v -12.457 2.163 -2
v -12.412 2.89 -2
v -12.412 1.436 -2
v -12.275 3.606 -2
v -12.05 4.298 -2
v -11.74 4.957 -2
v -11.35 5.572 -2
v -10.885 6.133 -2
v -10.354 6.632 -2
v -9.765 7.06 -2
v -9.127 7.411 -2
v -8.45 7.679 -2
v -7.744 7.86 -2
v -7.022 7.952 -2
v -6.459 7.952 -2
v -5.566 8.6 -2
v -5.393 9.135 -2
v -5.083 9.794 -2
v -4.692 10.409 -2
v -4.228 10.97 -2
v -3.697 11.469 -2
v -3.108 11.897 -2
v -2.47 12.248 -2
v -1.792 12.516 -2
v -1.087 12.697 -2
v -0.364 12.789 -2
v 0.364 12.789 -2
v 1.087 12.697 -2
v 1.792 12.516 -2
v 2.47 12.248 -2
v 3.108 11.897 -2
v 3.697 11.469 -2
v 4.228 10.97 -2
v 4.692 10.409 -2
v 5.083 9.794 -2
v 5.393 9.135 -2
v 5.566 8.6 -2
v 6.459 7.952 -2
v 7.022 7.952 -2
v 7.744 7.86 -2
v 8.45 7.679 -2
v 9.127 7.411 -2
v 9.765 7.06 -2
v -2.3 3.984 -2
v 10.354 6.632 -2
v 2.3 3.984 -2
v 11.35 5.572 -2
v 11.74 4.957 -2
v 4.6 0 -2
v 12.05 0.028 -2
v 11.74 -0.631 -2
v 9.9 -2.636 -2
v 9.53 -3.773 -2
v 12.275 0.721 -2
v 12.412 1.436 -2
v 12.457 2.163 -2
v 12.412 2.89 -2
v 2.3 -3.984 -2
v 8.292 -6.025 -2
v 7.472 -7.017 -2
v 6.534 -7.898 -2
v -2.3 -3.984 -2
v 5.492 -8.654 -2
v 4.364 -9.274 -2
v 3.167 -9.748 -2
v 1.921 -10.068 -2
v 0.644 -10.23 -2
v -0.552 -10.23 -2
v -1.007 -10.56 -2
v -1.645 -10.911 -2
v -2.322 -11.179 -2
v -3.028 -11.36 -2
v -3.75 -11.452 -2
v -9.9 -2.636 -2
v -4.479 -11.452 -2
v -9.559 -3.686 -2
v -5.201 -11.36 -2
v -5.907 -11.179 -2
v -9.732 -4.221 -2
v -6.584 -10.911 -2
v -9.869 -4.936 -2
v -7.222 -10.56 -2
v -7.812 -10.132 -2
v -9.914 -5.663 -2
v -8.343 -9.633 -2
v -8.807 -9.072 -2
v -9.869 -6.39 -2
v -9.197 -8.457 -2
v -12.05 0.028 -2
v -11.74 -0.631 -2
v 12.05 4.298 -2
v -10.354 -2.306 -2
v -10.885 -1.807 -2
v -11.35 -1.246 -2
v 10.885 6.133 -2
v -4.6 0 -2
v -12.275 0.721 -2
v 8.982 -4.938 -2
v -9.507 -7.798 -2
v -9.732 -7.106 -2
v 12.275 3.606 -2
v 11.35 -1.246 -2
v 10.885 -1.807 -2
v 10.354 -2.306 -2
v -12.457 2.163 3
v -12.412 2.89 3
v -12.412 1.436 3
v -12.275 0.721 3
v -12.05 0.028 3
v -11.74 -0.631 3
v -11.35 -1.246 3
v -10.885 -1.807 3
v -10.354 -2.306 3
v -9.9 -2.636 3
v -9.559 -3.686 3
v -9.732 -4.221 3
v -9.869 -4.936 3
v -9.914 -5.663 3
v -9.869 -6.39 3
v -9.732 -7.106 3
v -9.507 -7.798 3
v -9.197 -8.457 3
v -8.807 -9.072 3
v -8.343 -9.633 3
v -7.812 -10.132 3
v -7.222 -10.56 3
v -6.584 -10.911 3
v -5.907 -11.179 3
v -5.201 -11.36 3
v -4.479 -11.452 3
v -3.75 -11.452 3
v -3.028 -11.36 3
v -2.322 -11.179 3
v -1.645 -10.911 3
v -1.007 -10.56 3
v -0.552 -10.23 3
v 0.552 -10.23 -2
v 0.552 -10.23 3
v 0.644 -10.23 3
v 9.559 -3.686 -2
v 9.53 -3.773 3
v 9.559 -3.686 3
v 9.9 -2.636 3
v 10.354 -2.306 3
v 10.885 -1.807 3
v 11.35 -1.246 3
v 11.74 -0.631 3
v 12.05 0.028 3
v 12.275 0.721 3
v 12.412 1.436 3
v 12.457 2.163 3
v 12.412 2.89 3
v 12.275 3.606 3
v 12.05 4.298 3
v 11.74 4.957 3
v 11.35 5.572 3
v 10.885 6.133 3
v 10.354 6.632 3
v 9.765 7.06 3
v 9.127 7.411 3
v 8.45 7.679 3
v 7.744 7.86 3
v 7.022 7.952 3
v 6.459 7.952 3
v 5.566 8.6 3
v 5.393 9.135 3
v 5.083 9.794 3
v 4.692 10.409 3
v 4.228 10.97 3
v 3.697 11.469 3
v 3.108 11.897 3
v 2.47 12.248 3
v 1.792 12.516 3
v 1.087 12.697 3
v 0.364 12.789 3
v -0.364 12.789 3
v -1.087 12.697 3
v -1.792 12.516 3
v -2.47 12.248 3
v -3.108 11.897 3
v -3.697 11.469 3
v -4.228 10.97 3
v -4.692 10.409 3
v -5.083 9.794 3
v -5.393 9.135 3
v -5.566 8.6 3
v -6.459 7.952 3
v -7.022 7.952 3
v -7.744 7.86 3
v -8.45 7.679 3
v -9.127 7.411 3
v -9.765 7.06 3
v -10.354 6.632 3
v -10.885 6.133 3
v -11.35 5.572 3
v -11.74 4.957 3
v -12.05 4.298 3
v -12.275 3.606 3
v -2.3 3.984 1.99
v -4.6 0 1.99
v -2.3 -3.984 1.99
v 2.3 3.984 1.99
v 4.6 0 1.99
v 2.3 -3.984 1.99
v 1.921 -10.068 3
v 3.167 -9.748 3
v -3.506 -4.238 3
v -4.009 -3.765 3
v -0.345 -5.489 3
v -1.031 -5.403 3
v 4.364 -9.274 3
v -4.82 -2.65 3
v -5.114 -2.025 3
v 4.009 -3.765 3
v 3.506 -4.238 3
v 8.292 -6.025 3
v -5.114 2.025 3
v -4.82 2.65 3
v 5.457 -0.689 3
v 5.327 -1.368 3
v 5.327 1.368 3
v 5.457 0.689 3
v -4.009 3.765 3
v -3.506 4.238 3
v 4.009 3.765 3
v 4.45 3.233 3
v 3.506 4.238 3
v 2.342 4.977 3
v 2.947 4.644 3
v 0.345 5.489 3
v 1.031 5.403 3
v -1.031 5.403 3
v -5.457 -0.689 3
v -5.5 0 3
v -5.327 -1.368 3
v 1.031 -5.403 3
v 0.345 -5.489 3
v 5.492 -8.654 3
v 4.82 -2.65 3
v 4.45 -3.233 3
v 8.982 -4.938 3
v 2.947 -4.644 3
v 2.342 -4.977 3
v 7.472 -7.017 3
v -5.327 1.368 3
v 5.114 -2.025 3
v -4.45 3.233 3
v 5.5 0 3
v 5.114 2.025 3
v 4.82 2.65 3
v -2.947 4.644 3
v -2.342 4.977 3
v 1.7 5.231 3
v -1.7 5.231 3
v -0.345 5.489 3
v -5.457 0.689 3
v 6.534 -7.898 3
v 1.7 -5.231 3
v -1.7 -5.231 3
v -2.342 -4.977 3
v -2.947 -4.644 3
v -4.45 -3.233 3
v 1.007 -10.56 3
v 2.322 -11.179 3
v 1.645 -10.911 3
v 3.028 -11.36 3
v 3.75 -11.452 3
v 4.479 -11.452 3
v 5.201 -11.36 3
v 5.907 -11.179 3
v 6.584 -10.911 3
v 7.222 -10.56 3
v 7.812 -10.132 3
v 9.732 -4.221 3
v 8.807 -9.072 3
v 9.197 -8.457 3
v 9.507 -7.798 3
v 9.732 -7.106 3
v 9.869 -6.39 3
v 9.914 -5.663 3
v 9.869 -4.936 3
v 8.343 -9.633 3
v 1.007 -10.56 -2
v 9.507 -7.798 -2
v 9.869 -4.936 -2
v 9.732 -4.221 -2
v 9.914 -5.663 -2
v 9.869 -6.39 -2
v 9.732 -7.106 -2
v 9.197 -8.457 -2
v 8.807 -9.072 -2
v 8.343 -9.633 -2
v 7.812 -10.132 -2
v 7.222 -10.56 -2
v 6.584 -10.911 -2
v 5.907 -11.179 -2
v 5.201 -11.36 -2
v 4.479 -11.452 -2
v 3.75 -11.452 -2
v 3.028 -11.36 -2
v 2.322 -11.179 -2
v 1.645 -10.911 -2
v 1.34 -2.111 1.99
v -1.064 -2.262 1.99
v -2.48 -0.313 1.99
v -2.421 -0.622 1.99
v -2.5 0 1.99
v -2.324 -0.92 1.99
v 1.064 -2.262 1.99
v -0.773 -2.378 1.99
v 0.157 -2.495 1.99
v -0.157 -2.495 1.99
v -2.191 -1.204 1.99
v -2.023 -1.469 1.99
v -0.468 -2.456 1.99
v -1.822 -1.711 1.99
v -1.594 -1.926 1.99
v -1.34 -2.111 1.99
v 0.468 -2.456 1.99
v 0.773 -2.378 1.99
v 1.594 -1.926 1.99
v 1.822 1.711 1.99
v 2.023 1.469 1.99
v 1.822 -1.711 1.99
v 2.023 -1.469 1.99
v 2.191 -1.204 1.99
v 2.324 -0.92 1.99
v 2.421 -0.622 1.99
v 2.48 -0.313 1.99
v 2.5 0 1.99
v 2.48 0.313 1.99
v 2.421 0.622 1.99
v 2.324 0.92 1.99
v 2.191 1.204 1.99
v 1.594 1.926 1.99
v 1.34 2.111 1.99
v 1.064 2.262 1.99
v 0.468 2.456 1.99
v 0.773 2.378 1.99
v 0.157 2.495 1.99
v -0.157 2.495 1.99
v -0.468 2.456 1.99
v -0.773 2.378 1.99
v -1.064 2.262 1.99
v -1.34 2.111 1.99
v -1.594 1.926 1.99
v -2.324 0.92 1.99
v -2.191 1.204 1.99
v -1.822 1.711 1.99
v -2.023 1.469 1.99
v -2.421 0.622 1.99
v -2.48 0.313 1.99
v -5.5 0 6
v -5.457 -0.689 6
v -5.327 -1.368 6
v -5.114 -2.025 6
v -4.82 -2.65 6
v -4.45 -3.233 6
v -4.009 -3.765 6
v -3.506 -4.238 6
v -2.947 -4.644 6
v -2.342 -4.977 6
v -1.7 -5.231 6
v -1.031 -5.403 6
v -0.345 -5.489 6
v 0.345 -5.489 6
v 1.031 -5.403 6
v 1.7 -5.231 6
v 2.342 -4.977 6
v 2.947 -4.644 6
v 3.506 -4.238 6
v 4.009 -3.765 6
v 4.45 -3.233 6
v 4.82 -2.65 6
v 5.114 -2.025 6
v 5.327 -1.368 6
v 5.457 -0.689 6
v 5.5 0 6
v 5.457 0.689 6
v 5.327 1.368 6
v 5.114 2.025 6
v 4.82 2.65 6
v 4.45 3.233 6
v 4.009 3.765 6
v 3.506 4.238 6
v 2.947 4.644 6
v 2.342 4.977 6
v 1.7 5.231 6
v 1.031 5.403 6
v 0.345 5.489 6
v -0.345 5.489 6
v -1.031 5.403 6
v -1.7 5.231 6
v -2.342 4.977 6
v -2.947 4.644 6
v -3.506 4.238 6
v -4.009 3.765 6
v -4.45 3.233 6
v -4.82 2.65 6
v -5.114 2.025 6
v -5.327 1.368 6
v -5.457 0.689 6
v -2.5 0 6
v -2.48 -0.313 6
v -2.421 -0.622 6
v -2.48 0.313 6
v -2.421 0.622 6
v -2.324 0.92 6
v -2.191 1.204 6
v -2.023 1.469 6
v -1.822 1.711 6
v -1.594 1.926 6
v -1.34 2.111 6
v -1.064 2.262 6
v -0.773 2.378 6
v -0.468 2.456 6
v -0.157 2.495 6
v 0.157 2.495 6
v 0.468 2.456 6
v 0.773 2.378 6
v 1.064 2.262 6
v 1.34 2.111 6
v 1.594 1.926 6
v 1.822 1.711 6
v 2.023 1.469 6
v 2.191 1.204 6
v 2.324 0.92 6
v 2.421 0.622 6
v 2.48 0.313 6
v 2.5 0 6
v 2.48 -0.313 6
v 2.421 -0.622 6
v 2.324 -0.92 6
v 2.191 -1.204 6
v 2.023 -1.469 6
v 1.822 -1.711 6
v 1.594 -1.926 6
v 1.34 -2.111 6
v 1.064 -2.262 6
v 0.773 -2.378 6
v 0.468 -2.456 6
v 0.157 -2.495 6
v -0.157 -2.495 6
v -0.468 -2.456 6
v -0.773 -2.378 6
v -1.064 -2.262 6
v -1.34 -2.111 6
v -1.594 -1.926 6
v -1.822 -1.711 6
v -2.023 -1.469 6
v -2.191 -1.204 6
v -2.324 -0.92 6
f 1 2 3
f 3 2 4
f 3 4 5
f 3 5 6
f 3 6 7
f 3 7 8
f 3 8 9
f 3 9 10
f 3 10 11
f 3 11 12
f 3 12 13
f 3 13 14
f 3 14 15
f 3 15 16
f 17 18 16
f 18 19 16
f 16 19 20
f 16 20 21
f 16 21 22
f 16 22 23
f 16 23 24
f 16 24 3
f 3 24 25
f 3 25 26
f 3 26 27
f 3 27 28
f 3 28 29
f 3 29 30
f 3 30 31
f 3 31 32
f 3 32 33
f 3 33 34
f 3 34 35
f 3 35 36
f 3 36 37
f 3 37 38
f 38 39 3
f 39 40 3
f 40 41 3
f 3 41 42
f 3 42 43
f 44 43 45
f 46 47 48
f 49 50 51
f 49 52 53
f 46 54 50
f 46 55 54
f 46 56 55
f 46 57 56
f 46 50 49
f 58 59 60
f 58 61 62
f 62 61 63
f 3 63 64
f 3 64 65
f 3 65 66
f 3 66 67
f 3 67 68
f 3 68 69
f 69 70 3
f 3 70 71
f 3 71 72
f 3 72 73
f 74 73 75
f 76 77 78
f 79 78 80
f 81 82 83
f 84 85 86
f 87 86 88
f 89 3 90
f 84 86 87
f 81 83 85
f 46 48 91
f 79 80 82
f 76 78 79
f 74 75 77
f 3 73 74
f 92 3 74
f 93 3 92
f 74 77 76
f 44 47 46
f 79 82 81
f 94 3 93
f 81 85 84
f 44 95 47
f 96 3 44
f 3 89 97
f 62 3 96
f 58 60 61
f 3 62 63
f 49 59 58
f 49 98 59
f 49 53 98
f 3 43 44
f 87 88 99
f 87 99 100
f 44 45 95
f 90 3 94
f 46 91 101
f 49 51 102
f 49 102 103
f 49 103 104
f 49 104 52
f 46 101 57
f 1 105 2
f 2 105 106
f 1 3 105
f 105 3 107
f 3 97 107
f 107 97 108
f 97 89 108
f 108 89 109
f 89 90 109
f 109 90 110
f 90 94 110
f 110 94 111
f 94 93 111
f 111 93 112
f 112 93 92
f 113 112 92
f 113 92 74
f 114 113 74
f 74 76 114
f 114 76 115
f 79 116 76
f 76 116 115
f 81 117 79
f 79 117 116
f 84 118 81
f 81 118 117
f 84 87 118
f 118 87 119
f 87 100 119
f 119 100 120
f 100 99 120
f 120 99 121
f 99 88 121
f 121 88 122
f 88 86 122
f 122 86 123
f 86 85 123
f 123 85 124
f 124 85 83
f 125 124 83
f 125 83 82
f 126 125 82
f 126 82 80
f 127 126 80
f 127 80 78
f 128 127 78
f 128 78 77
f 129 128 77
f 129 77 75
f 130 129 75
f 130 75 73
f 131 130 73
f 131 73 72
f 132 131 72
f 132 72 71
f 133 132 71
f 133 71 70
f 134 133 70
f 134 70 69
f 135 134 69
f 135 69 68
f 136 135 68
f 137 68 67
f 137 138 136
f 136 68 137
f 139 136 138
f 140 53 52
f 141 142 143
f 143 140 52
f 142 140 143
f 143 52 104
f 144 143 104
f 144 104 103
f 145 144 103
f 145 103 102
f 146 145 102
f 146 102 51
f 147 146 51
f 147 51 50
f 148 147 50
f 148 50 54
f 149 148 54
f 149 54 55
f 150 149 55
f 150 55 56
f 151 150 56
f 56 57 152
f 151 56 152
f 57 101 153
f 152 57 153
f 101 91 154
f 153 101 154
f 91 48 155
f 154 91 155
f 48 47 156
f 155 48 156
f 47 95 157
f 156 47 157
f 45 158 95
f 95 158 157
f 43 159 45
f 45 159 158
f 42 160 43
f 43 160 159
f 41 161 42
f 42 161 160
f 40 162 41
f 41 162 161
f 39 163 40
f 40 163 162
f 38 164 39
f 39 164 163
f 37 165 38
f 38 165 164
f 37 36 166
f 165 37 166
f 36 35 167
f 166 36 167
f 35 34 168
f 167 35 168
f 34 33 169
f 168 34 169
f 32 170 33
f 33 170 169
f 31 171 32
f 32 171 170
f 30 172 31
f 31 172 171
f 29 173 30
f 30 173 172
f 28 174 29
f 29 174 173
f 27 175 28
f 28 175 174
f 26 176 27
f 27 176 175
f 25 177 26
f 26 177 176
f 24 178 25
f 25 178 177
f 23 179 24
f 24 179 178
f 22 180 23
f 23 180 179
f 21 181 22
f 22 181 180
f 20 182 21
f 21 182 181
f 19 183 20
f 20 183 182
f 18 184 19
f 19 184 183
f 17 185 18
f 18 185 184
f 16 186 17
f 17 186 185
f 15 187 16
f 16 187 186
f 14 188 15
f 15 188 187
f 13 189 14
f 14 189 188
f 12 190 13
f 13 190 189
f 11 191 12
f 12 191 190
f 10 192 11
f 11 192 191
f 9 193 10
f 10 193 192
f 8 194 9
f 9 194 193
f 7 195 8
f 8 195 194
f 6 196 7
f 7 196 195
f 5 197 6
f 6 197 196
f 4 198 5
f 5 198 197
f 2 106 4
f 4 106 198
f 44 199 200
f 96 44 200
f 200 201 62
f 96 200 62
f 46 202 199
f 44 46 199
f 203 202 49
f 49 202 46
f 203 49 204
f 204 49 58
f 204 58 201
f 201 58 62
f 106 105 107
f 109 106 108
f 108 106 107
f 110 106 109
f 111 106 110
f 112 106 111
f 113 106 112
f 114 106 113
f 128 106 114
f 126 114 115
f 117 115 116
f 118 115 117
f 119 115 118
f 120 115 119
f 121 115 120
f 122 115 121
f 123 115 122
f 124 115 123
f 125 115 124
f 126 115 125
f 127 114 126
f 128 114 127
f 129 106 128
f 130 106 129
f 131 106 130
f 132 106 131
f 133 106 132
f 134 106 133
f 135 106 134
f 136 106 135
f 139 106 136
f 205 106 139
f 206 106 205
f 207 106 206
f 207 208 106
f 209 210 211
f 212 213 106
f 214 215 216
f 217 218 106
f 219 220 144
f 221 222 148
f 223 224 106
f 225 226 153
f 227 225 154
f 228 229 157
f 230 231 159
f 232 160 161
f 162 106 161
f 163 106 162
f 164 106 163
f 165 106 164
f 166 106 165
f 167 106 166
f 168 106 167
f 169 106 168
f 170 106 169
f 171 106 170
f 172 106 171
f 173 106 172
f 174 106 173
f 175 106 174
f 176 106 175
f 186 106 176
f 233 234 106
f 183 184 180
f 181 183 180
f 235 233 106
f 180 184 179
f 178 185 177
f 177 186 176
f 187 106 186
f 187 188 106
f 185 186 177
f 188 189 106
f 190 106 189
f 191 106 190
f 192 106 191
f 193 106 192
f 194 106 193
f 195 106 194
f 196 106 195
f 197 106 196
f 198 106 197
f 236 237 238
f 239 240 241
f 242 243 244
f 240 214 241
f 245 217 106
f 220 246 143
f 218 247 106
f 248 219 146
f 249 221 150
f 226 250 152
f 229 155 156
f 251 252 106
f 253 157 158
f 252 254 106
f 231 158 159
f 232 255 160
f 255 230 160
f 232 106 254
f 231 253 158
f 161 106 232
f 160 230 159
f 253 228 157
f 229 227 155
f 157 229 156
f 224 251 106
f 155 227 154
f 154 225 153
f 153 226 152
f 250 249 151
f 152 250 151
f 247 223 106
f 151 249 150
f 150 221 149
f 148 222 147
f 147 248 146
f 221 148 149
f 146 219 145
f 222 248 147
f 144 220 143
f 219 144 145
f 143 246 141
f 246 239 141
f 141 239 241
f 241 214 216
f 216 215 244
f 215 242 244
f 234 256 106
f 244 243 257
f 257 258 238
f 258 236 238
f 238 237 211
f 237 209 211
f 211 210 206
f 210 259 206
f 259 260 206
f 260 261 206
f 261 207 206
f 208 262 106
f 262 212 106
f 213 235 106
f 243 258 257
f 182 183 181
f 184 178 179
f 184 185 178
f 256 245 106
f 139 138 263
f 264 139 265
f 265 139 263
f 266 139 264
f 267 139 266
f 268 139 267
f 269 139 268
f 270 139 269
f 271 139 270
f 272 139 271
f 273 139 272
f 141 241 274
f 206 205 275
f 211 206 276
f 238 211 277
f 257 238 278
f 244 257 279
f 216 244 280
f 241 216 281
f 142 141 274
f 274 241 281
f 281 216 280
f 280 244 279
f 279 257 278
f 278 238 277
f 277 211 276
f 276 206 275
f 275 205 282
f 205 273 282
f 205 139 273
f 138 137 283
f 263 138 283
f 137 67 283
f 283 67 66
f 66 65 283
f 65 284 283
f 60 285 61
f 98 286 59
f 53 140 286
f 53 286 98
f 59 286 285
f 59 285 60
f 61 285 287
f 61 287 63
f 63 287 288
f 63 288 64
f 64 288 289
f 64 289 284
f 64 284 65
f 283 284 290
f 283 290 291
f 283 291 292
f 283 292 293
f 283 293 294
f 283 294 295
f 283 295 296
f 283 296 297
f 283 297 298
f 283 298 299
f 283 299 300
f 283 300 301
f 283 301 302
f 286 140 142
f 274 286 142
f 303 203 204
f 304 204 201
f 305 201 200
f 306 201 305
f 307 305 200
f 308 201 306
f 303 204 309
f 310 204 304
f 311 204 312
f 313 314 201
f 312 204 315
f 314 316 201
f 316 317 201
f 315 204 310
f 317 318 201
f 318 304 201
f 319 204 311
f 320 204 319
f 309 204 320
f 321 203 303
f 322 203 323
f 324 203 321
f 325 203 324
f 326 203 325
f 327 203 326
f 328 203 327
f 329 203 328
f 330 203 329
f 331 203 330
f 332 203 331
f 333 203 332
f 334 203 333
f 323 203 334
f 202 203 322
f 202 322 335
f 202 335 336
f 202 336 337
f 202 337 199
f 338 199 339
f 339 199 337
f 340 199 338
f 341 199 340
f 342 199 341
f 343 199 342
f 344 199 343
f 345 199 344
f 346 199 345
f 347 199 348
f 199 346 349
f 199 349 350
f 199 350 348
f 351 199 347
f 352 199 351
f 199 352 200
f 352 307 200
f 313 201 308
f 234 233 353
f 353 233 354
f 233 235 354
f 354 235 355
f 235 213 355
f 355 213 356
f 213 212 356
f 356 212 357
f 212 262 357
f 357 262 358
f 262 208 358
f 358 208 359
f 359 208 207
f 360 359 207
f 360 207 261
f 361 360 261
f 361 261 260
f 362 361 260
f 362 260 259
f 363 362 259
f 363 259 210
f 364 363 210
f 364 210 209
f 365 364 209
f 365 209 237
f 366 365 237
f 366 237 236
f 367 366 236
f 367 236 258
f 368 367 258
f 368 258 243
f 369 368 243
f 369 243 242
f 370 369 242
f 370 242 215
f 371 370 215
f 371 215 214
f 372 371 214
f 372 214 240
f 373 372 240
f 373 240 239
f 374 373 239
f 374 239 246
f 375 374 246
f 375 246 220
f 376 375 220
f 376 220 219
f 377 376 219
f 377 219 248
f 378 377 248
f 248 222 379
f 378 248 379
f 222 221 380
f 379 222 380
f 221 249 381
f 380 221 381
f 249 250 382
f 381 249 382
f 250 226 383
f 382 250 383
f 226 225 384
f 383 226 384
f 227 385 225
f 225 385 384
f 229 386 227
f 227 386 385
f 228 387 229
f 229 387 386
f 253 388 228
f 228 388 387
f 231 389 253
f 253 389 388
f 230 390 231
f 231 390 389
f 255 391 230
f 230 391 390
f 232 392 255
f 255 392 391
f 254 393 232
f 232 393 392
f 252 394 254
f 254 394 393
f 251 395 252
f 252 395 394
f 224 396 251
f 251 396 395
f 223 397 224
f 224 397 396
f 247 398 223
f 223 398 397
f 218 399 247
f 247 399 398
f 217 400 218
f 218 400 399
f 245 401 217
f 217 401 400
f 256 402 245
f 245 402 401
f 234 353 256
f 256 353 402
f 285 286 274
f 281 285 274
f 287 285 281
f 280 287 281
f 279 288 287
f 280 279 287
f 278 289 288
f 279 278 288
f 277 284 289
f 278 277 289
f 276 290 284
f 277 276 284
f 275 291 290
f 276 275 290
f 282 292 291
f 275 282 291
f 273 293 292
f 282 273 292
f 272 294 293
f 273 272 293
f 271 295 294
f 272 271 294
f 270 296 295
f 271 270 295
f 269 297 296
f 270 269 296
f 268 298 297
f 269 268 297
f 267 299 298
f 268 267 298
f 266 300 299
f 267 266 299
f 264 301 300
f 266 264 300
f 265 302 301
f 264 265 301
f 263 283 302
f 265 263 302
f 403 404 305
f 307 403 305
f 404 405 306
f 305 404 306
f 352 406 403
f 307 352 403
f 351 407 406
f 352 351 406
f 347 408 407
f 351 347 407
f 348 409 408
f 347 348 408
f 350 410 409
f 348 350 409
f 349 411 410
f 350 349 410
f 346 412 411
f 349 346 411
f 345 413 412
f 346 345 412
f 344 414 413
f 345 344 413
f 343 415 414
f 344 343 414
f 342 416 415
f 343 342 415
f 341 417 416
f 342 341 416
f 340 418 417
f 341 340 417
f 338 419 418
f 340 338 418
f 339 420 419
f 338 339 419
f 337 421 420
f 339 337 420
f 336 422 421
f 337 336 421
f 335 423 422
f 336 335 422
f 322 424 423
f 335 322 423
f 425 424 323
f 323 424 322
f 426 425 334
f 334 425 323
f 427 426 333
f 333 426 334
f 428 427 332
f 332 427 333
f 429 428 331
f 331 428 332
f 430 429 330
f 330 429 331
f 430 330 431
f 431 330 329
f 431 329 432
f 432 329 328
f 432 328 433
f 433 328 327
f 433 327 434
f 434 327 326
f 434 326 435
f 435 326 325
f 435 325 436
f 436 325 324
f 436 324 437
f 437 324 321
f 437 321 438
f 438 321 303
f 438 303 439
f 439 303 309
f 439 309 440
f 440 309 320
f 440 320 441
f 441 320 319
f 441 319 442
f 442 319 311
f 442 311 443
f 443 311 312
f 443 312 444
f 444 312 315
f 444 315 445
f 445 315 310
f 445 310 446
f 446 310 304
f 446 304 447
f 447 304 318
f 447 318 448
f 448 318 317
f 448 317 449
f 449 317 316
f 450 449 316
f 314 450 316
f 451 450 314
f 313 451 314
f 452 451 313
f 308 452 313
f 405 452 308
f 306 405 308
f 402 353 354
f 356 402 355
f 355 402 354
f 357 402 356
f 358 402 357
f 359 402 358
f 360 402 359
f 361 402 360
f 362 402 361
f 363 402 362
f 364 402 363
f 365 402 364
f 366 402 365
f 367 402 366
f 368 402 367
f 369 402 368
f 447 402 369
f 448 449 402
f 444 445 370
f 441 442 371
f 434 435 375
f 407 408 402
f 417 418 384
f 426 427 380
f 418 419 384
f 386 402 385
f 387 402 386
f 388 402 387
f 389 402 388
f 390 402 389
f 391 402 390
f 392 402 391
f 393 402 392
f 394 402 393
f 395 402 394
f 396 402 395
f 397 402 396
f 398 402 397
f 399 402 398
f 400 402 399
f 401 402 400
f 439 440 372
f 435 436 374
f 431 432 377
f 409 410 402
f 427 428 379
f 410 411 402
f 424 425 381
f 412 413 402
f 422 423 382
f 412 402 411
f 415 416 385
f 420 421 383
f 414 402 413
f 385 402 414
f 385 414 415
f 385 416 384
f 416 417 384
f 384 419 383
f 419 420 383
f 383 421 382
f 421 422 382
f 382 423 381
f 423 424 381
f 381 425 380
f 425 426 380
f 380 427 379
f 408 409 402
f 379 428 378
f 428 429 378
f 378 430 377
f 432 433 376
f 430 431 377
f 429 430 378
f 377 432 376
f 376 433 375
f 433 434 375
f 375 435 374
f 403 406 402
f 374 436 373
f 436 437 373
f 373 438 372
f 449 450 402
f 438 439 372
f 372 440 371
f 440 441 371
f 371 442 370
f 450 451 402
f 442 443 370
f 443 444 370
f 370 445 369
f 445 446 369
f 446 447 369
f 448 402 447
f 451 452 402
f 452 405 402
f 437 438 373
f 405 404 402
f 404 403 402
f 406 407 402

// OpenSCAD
// file: nuts_and_bolts.scad
// copied from https://github.com/openscad/MCAD/blob/master/nuts_and_bolts.scad
//
// Copyright 2010 D1plo1d

// This library is dual licensed under the GPL 3.0 and the GNU Lesser General Public License as per http://creativecommons.org/licenses/LGPL/2.1/ .

//testNutsAndBolts();

module SKIPtestNutsAndBolts()
{
	$fn = 360;
	translate([0,15])nutHole(3, proj=2);
	boltHole(3, length= 30, proj=2);
}

MM = "mm";
INCH = "inch"; //Not yet supported

//Based on: http://www.roymech.co.uk/Useful_Tables/Screws/Hex_Screws.htm
METRIC_NUT_AC_WIDTHS =
[
	-1, //0 index is not used but reduces computation
	-1,
	-1,
	6.40,//m3
	8.10,//m4
	9.20,//m5
	11.50,//m6
	-1,
	15.00,//m8
	-1,
	19.60,//m10
	-1,
	22.10,//m12
	-1,
	-1,
	-1,
	27.70,//m16
	-1,
	-1,
	-1,
	34.60,//m20
	-1,
	-1,
	-1,
	41.60,//m24
	-1,
	-1,
	-1,
	-1,
	-1,
	53.1,//m30
	-1,
	-1,
	-1,
	-1,
	-1,
	63.5//m36
];
METRIC_NUT_THICKNESS =
[
	-1, //0 index is not used but reduces computation
	-1,
	-1,
	2.40,//m3
	3.20,//m4
	4.00,//m5
	5.00,//m6
	-1,
	6.50,//m8
	-1,
	8.00,//m10
	-1,
	10.00,//m12
	-1,
	-1,
	-1,
	13.00,//m16
	-1,
	-1,
	-1,
	16.00//m20
	-1,
	-1,
	-1,
	19.00,//m24
	-1,
	-1,
	-1,
	-1,
	-1,
	24.00,//m30
	-1,
	-1,
	-1,
	-1,
	-1,
	29.00//m36
];

COURSE_METRIC_BOLT_MAJOR_THREAD_DIAMETERS =
[//based on max values
	-1, //0 index is not used but reduces computation
	-1,
	-1,
	2.98,//m3
	3.978,//m4
	4.976,//m5
	5.974,//m6
	-1,
	7.972,//m8
	-1,
	9.968,//m10
	-1,
	11.966,//m12
	-1,
	-1,
	-1,
	15.962,//m16
	-1,
	-1,
	-1,
	19.958,//m20
	-1,
	-1,
	-1,
	23.952,//m24
	-1,
	-1,
	-1,
	-1,
	-1,
	29.947,//m30
	-1,
	-1,
	-1,
	-1,
	-1,
	35.940//m36
];

module nutHole(size, units=MM, tolerance = +0.0001, proj = -1)
{
	//takes a metric screw/nut size and looksup nut dimensions
	radius = METRIC_NUT_AC_WIDTHS[size]/2+tolerance;
	height = METRIC_NUT_THICKNESS[size]+tolerance;
	if (proj == -1)
	{
		cylinder(r= radius, h=height, $fn = 6, center=[0,0]);
	}
	if (proj == 1)
	{
		circle(r= radius, $fn = 6);
	}
	if (proj == 2)
	{
		translate([-radius/2, 0])
			square([radius*2, height]);
	}
}

module boltHole(size, units=MM, length, tolerance = +0.0001, proj = -1)
{
	radius = COURSE_METRIC_BOLT_MAJOR_THREAD_DIAMETERS[size]/2+tolerance;
//TODO: proper screw cap values
	capHeight = METRIC_NUT_THICKNESS[size]+tolerance; //METRIC_BOLT_CAP_HEIGHTS[size]+tolerance;
	capRadius = METRIC_NUT_AC_WIDTHS[size]/2+tolerance; //METRIC_BOLT_CAP_RADIUS[size]+tolerance;

	if (proj == -1)
	{
	translate([0, 0, -capHeight])
		cylinder(r= capRadius, h=capHeight);
	cylinder(r = radius, h = length);
	}
	if (proj == 1)
	{
		circle(r = radius);
	}
	if (proj == 2)
	{
		translate([-capRadius/2, -capHeight])
			square([capRadius*2, capHeight]);
		square([radius*2, length]);
	}
}// Copyright 2010 D1plo1d

// This library is dual licensed under the GPL 3.0 and the GNU Lesser General Public License as per http://creativecommons.org/licenses/LGPL/2.1/ .

//testNutsAndBolts();

module SKIPtestNutsAndBolts()
{
	$fn = 360;
	translate([0,15])nutHole(3, proj=2);
	boltHole(3, length= 30, proj=2);
}

MM = "mm";
INCH = "inch"; //Not yet supported

//Based on: http://www.roymech.co.uk/Useful_Tables/Screws/Hex_Screws.htm
METRIC_NUT_AC_WIDTHS =
[
	-1, //0 index is not used but reduces computation
	-1,
	-1,
	6.40,//m3
	8.10,//m4
	9.20,//m5
	11.50,//m6
	-1,
	15.00,//m8
	-1,
	19.60,//m10
	-1,
	22.10,//m12
	-1,
	-1,
	-1,
	27.70,//m16
	-1,
	-1,
	-1,
	34.60,//m20
	-1,
	-1,
	-1,
	41.60,//m24
	-1,
	-1,
	-1,
	-1,
	-1,
	53.1,//m30
	-1,
	-1,
	-1,
	-1,
	-1,
	63.5//m36
];
METRIC_NUT_THICKNESS =
[
	-1, //0 index is not used but reduces computation
	-1,
	-1,
	2.40,//m3
	3.20,//m4
	4.00,//m5
	5.00,//m6
	-1,
	6.50,//m8
	-1,
	8.00,//m10
	-1,
	10.00,//m12
	-1,
	-1,
	-1,
	13.00,//m16
	-1,
	-1,
	-1,
	16.00//m20
	-1,
	-1,
	-1,
	19.00,//m24
	-1,
	-1,
	-1,
	-1,
	-1,
	24.00,//m30
	-1,
	-1,
	-1,
	-1,
	-1,
	29.00//m36
];

COURSE_METRIC_BOLT_MAJOR_THREAD_DIAMETERS =
[//based on max values
	-1, //0 index is not used but reduces computation
	-1,
	-1,
	2.98,//m3
	3.978,//m4
	4.976,//m5
	5.974,//m6
	-1,
	7.972,//m8
	-1,
	9.968,//m10
	-1,
	11.966,//m12
	-1,
	-1,
	-1,
	15.962,//m16
	-1,
	-1,
	-1,
	19.958,//m20
	-1,
	-1,
	-1,
	23.952,//m24
	-1,
	-1,
	-1,
	-1,
	-1,
	29.947,//m30
	-1,
	-1,
	-1,
	-1,
	-1,
	35.940//m36
];

module nutHole(size, units=MM, tolerance = +0.0001, proj = -1)
{
	//takes a metric screw/nut size and looksup nut dimensions
	radius = METRIC_NUT_AC_WIDTHS[size]/2+tolerance;
	height = METRIC_NUT_THICKNESS[size]+tolerance;
	if (proj == -1)
	{
		cylinder(r= radius, h=height, $fn = 6, center=[0,0]);
	}
	if (proj == 1)
	{
		circle(r= radius, $fn = 6);
	}
	if (proj == 2)
	{
		translate([-radius/2, 0])
			square([radius*2, height]);
	}
}

module boltHole(size, units=MM, length, tolerance = +0.0001, proj = -1)
{
	radius = COURSE_METRIC_BOLT_MAJOR_THREAD_DIAMETERS[size]/2+tolerance;
//TODO: proper screw cap values
	capHeight = METRIC_NUT_THICKNESS[size]+tolerance; //METRIC_BOLT_CAP_HEIGHTS[size]+tolerance;
	capRadius = METRIC_NUT_AC_WIDTHS[size]/2+tolerance; //METRIC_BOLT_CAP_RADIUS[size]+tolerance;

	if (proj == -1)
	{
	translate([0, 0, -capHeight])
		cylinder(r= capRadius, h=capHeight);
	cylinder(r = radius, h = length);
	}
	if (proj == 1)
	{
		circle(r = radius);
	}
	if (proj == 2)
	{
		translate([-capRadius/2, -capHeight])
			square([capRadius*2, capHeight]);
		square([radius*2, length]);
	}
}
// main file
$fn=50;
include <nuts_and_bolts.scad>
module screwhole(screw, depth)
{
translate([0,0,-0.5]) cylinder(r=screw/2, h=depth+1);
translate([0,0,-0.01]) nutHole(size=screw);
}




cyls=5;


difference(){
union(){

cylinder(d=11,h=6);
translate([0,0,-2])cylinder(d=20.5,h=5);

for ( i = [0 : cyls-1] )
{
    rotate( i * 360 / cyls, [0, 0, 1])
    translate([0, 7, -2])
	 cylinder(h=5, r = 5.8);
}

}

translate([0,0,-2])screwhole(5,8);
}
